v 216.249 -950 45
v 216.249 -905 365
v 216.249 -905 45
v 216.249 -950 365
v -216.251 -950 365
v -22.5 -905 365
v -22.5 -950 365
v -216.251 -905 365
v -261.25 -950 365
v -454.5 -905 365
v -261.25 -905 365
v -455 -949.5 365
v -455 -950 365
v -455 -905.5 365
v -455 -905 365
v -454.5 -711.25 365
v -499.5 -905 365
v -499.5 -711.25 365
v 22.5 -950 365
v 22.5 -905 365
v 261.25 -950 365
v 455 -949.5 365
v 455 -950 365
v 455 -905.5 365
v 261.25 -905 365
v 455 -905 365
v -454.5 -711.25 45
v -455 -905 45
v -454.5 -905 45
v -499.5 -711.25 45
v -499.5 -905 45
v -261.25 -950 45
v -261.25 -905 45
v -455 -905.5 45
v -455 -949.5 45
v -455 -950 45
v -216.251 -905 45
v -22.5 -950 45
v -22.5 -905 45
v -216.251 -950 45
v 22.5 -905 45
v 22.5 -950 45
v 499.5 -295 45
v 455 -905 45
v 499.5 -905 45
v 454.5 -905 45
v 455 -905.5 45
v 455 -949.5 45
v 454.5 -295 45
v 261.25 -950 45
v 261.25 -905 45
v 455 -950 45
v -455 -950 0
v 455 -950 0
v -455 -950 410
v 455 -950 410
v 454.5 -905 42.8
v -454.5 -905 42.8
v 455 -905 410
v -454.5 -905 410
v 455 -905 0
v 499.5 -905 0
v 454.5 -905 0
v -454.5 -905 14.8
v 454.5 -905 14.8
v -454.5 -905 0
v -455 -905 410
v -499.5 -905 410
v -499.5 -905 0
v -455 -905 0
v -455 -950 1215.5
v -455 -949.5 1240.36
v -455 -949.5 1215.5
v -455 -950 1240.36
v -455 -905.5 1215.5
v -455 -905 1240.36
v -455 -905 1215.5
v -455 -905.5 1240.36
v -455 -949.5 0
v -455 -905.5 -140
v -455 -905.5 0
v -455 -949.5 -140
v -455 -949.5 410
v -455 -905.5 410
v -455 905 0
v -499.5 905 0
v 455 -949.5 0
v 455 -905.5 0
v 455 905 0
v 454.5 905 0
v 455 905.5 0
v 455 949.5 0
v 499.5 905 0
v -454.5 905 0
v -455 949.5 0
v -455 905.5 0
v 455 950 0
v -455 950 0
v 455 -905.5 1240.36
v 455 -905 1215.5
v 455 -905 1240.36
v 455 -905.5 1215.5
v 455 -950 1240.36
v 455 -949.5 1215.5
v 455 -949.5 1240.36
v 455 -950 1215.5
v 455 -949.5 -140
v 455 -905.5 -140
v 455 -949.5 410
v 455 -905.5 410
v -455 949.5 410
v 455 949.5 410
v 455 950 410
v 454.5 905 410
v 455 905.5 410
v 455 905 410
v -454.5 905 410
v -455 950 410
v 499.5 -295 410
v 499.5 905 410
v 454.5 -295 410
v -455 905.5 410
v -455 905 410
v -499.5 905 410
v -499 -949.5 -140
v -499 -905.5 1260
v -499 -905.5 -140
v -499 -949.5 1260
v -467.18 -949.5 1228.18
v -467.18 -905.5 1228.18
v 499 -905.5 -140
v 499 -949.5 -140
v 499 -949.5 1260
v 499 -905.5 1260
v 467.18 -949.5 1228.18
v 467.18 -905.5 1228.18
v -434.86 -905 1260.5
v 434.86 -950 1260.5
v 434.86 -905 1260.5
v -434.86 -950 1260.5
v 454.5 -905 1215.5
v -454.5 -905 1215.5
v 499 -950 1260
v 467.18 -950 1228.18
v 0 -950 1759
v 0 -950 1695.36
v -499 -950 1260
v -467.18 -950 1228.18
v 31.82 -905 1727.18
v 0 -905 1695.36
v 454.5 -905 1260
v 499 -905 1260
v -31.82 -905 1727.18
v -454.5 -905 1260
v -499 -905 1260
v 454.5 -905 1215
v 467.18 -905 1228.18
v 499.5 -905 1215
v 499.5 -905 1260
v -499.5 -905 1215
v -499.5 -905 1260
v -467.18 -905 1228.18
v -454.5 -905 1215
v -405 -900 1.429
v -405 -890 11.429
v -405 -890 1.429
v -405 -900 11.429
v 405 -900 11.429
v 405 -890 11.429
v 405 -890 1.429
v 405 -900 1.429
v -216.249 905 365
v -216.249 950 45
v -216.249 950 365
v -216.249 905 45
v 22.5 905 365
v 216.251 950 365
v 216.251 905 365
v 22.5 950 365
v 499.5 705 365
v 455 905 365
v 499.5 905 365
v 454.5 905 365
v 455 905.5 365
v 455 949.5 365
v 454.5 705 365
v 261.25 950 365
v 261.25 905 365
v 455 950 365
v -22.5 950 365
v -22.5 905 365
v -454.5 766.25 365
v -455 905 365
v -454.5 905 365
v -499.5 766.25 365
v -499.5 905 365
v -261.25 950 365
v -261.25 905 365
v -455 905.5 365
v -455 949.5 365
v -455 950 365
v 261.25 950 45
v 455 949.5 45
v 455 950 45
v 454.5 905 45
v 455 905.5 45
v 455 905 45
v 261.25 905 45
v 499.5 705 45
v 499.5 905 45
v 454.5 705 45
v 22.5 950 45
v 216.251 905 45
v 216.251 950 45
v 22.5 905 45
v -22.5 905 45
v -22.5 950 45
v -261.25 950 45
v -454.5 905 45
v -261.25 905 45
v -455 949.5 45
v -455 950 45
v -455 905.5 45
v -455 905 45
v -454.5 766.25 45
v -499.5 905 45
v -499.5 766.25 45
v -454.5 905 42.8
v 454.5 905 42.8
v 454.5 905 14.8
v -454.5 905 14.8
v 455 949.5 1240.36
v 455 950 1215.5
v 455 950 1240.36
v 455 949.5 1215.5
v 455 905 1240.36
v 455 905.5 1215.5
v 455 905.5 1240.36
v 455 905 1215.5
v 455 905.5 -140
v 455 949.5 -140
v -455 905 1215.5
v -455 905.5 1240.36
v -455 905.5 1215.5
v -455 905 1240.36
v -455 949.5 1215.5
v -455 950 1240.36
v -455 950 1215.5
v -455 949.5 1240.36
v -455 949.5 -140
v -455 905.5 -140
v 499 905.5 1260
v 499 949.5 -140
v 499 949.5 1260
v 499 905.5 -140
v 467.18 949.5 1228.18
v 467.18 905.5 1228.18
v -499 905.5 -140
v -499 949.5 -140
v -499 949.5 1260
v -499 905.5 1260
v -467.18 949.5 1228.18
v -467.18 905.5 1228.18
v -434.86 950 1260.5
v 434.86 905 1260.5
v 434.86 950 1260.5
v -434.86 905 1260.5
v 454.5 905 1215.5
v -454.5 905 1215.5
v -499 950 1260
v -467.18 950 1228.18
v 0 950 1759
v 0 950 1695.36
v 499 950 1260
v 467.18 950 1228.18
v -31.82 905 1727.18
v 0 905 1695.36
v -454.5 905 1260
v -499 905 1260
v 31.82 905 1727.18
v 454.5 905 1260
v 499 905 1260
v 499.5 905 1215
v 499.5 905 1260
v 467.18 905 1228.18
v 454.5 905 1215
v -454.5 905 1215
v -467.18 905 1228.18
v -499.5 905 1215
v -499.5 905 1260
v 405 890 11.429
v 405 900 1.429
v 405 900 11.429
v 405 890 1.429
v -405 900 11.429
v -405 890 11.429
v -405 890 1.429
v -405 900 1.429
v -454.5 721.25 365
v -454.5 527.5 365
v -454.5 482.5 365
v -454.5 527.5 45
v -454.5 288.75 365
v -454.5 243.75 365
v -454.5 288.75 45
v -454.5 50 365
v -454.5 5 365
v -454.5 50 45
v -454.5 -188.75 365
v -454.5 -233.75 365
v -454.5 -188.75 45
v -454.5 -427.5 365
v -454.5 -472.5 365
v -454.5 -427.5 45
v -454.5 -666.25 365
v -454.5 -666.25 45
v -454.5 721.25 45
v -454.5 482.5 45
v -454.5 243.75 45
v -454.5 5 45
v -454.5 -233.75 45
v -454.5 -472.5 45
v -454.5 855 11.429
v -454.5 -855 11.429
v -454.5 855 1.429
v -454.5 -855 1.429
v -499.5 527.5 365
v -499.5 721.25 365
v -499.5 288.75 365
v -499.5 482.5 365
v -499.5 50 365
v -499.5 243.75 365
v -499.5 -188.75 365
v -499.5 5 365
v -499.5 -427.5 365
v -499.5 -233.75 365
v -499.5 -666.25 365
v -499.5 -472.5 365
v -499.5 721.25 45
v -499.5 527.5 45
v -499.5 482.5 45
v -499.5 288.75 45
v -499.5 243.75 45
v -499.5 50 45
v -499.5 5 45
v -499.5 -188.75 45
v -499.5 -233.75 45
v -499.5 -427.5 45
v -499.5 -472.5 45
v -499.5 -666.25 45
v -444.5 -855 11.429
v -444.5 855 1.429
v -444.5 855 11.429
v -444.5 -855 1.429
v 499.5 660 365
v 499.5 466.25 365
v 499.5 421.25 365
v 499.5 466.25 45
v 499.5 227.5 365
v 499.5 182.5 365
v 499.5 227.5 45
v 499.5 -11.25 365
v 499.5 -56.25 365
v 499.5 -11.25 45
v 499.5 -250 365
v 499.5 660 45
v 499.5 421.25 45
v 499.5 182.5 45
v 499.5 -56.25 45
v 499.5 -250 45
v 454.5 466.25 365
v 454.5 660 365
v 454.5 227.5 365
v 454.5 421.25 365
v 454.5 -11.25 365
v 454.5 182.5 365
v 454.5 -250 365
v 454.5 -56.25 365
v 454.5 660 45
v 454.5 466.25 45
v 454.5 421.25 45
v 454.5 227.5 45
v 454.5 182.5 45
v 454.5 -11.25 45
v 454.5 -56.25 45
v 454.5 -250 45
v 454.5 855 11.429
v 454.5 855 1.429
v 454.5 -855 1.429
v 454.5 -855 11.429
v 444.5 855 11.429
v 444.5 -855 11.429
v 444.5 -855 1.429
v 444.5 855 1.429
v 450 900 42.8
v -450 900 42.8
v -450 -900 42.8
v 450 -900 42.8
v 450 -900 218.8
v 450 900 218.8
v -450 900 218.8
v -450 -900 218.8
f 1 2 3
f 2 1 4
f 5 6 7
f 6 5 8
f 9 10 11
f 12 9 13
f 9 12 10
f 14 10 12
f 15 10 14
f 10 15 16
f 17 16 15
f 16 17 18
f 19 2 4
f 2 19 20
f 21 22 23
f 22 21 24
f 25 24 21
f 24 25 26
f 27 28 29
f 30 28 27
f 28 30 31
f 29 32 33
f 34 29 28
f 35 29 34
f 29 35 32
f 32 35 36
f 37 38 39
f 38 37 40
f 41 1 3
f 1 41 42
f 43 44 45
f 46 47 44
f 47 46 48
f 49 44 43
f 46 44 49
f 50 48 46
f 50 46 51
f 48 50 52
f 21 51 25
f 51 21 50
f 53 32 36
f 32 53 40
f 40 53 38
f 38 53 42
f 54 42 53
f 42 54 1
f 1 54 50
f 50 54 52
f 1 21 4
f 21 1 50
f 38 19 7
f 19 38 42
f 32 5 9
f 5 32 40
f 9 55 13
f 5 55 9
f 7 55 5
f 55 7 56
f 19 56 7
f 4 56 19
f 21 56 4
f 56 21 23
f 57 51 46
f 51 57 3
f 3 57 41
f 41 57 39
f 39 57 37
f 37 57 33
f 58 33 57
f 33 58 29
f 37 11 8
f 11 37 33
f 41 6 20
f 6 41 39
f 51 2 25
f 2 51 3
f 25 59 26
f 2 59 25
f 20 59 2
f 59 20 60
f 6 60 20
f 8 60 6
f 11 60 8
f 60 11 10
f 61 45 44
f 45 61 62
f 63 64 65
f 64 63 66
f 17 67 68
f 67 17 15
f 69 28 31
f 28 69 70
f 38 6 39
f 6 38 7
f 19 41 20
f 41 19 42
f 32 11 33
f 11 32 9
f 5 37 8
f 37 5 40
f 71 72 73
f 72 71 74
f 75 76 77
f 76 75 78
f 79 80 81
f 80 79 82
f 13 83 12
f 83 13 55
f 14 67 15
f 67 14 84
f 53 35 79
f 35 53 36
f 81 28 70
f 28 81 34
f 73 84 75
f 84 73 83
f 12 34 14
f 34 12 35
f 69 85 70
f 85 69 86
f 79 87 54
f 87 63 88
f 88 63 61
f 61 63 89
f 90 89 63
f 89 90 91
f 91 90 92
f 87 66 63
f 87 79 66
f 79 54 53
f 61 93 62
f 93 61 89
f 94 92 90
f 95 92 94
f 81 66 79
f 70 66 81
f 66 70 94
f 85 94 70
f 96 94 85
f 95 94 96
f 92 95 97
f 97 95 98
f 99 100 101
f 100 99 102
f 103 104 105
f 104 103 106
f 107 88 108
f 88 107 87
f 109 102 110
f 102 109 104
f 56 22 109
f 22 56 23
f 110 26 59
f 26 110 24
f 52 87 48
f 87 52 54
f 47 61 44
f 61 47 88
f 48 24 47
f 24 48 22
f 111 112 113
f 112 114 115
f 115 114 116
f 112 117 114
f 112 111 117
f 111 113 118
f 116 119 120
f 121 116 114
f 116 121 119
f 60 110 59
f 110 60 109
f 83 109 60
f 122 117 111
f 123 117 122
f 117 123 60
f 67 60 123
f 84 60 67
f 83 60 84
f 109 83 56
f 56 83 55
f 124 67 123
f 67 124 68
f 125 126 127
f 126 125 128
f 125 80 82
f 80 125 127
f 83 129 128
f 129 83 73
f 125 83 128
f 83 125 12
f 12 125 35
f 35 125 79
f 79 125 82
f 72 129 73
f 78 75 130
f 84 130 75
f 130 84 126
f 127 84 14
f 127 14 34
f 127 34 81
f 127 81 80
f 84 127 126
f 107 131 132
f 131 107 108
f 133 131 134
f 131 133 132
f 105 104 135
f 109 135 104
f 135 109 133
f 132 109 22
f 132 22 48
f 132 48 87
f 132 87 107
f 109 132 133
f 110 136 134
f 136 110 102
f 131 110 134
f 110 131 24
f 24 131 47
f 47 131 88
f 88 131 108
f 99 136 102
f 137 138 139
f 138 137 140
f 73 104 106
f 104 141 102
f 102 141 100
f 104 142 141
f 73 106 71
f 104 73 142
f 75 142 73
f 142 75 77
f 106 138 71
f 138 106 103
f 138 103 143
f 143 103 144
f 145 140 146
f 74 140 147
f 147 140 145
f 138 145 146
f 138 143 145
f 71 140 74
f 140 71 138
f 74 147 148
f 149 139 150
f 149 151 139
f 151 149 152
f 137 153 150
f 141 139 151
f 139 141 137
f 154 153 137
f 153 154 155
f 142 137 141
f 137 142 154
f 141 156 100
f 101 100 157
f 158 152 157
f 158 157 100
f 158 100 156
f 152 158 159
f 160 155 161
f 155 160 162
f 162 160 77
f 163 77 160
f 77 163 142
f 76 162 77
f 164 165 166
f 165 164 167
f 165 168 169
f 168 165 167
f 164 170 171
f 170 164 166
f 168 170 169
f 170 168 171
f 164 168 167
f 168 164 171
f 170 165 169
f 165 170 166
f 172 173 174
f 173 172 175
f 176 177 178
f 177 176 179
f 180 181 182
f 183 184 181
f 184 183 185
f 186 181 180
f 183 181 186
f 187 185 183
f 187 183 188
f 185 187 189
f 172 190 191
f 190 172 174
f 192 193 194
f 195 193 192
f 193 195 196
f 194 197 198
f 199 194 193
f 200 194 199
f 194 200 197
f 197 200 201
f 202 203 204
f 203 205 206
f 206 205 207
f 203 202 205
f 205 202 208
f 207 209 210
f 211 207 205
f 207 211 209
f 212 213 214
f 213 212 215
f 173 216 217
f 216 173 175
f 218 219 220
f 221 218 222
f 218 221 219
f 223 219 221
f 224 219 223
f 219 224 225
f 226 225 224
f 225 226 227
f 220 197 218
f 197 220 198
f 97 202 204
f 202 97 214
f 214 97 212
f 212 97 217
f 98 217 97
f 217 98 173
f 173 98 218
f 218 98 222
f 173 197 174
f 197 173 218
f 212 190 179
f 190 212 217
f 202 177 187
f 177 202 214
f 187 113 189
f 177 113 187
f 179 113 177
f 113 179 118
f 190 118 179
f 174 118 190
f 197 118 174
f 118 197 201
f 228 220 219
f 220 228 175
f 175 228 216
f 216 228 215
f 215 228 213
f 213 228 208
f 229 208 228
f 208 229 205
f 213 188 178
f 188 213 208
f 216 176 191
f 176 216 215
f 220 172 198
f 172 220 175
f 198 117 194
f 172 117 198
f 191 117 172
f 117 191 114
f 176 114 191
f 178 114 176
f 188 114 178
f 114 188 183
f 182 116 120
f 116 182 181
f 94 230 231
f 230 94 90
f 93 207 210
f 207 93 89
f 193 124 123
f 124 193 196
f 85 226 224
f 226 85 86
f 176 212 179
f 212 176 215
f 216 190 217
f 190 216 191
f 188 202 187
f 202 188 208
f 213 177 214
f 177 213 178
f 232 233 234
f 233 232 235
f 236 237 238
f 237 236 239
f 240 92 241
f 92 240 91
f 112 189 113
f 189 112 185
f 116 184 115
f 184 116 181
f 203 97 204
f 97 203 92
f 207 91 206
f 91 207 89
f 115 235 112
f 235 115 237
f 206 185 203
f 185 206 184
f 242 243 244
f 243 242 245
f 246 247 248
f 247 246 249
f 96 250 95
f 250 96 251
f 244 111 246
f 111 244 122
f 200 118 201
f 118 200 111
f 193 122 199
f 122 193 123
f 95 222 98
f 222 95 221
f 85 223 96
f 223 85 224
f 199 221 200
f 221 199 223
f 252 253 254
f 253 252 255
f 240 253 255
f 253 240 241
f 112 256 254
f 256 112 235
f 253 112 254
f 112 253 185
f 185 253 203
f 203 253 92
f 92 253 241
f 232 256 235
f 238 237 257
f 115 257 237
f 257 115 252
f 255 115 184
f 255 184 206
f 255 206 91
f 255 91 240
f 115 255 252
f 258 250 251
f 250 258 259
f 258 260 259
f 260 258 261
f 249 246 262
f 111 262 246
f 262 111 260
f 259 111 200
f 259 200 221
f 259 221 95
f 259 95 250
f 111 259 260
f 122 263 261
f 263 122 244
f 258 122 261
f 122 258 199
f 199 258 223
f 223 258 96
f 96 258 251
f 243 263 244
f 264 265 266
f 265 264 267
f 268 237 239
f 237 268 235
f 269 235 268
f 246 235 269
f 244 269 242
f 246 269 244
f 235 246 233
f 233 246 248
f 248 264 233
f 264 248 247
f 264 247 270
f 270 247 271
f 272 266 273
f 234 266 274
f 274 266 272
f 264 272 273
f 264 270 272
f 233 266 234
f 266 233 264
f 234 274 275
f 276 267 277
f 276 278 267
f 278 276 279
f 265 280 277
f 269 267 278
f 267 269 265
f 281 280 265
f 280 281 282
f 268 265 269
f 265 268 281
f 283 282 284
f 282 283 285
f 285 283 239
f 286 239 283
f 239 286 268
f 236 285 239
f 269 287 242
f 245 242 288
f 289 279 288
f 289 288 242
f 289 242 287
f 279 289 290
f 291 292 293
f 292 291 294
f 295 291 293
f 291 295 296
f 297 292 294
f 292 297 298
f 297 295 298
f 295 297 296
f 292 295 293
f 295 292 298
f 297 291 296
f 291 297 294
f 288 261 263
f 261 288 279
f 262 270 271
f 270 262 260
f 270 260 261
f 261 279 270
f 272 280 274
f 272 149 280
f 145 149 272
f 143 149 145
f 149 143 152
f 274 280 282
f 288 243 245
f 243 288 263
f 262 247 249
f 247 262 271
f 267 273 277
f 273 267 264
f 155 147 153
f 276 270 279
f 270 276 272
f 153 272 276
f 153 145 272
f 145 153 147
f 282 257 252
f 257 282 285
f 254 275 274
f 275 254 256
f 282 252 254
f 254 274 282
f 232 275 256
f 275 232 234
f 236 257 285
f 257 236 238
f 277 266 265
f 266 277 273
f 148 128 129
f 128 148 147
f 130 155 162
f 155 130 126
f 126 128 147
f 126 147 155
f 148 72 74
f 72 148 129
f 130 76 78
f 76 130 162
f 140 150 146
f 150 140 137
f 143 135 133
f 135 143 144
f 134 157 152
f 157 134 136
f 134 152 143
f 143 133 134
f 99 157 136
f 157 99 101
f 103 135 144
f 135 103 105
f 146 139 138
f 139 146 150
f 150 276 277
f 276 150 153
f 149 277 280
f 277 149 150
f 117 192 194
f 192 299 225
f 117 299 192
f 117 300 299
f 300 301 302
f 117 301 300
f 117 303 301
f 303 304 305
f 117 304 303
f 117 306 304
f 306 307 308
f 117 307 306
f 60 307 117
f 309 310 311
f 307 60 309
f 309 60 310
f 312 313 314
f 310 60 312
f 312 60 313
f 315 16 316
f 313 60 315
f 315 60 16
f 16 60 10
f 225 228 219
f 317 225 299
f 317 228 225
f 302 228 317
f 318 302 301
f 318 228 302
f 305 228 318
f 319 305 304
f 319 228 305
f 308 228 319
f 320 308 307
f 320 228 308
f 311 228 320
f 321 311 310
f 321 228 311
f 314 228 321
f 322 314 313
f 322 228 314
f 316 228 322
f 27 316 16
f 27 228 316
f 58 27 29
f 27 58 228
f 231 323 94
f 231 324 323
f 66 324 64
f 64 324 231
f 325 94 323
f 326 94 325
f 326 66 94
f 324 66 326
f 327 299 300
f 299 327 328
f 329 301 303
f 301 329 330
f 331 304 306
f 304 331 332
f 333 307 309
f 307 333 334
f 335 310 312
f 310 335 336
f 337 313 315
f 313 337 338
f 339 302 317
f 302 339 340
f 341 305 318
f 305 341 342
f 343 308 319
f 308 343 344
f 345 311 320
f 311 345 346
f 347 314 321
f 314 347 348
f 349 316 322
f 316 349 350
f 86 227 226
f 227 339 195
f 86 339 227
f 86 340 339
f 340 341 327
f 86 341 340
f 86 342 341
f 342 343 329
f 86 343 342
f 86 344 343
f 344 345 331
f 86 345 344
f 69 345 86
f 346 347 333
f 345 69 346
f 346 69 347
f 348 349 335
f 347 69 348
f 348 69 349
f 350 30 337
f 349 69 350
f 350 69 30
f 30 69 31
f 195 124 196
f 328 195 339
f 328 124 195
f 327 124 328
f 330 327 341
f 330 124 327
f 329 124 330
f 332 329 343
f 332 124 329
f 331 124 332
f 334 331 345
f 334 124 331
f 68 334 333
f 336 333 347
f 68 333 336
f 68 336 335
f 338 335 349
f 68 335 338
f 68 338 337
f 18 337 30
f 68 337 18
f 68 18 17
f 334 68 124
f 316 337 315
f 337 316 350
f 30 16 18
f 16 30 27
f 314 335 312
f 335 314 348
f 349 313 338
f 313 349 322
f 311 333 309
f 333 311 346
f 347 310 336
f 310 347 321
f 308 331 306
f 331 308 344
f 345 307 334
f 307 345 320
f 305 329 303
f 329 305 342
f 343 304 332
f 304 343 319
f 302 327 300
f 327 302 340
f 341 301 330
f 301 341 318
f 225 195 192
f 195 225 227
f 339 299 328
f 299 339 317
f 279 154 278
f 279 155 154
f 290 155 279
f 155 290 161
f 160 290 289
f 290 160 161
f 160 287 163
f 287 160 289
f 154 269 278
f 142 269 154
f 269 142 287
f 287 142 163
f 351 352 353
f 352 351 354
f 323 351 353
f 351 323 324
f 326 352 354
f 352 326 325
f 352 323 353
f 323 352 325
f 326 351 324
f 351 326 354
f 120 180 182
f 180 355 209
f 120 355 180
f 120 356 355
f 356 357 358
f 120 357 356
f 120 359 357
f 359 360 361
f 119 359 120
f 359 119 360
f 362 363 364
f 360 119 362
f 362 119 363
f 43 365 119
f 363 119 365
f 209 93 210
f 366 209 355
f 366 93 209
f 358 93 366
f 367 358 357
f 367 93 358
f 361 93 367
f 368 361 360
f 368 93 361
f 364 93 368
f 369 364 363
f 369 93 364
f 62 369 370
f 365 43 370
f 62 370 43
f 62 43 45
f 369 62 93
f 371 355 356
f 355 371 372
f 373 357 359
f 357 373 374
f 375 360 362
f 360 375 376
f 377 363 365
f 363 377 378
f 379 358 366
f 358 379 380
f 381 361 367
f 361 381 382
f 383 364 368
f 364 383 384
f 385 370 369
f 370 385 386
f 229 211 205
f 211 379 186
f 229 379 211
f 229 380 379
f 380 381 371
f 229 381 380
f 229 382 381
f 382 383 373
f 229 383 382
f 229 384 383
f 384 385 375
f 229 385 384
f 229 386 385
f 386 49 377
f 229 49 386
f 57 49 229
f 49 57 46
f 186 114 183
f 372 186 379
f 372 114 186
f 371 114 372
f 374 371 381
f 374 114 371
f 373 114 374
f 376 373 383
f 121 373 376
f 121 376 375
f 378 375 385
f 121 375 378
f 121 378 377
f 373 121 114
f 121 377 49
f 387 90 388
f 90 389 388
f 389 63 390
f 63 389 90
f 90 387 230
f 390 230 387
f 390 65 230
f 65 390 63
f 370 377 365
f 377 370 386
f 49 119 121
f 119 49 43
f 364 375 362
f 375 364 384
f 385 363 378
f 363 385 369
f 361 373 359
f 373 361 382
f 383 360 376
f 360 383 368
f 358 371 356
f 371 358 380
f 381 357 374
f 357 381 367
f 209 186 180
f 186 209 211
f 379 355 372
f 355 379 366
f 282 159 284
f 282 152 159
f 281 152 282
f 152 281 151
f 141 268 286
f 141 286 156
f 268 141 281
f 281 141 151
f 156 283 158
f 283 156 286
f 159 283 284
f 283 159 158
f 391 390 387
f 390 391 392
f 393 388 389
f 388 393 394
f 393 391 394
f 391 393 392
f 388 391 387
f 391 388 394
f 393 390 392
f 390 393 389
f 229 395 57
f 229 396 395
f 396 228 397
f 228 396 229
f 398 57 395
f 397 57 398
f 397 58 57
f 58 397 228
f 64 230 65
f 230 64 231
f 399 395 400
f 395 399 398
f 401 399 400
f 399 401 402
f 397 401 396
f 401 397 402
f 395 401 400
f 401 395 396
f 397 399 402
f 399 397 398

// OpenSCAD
// factory parts

// mattress board
// main structure holding mattress board
// all-round fence
// house structure

// REMINDERS
// - subtract 0.001 units to guarantee items form a single object
// - rotate first, translate later
// - buld pieces centered so rotation is more intuitive
// - increase resolution using
//     $fa = 1;
//     $fs = 0.4;


bed_board_width=910;   // 0.91m
bed_board_length=1810; // 1.81m
bed_board_height=28;

mattress_board_width=900;   // 
mattress_board_length=1800; // 
mattress_board_height=190;  // 


main_leg_width=44;
main_leg_height=44;
main_leg_length=1400;


// PART MODULES

// fence common
//https://www.bricomart.es/liston-abeto-cepillado-2400-x-68-x-34-mm.html
//https://www.bricomart.es/liston-abeto-cepillado-2400-x-34-x-34-mm.html
fence_rail_width=45;
fence_rail_height=45;  // !! 
fence_main_width=45;
fence_main_height=45;
fence_bar_width=45;
fence_bar_height=fence_bar_width;
fence_bar_length=320; // magic number


// both W and H are equivalent
board_support = 10 ; 

fence_rail_entrance_length=1200;

height_from_floor= 140;

header_length=bed_board_width;
full_side_width=bed_board_width + 2*main_leg_width ;

// the separation between fence bars is determined by 
// the aesthetics of the head/foot fence. If the head/foot 
// fence looks nicer with 6 voids (5 bars), then that separation
// will govern all the bed fences
fence_bar_separation=(header_length+fence_bar_width)/4 ; // 188

fence_up=fence_bar_length/2+fence_main_height;
board_up=board_support+main_leg_height/5;

margin = fence_main_width/sqrt(2);
roof_length = (full_side_width)/sqrt(2) ;
roof_height = roof_length/sqrt(2) ;

module fence_bar() {
  cube([
        fence_bar_width,  // x
        fence_bar_height, // y
        fence_bar_length  // z
        ], center=true);
}

// 1. head/foot fence
module head_foot_fence() {
  // fence main
  translate([0,0, -1*((fence_bar_length + fence_main_height)/2)])
    cube([
        header_length,   // x
        fence_main_width,  // y 
        fence_main_height  // z
        ],
       center=true);

  // fence rail
  translate([0,0, ((fence_bar_length + fence_rail_height)/2)])
    cube(
       [
        header_length,   // x
        fence_rail_width,  // y 
        fence_rail_height  // z
        ],
       center=true);

  // fence bars
  x=header_length+fence_bar_width - 0.001;
  for (dx=[ -x/2 + fence_bar_separation :fence_bar_separation: x/2]) {
    color("green")
      translate([dx, 0, 0])
        fence_bar();
  }

}


// 2. wall fence
module wall_fence() {
  // fence main
  translate([0,0, -1*((fence_bar_length + fence_main_height)/2)])
   rotate([0,0,90])
    cube([
        bed_board_length,   // x
        fence_main_width,  // y 
        fence_main_height  // z
        ],
       center=true);
  // side top
  top_up = main_leg_length - height_from_floor - fence_up - fence_main_width/2;
  translate([0,0, top_up])
   rotate([0,0,90])
    cube([
        bed_board_length,   // x
        fence_main_width,  // y 
        fence_main_height  // z
        ],
       center=true);


  // fence rail
  translate([0,0, ((fence_bar_length + fence_rail_height)/2)])
   rotate([0,0,90])
    cube(
       [
        bed_board_length,   // x
        fence_rail_width,  // y 
        fence_rail_height  // z
        ],
       center=true);

  // fence bars
  x=bed_board_length+fence_bar_width;
  for (dy=[ -x/2 + fence_bar_separation :fence_bar_separation: x/2]) {
    color("green")
     translate([0, dy, 0])
      fence_bar();
  }
  
  wall_support_up = -( -fence_main_width*1/7 + fence_bar_length/2 + fence_main_height  );  color("cyan")
   translate([fence_main_width/2+board_support/2, 0, wall_support_up])
      cube([
        board_support,   // x
        bed_board_length-100,  // y 
        board_support  // z
        ],
       center=true);
}


// 3. entrance fence
module entrance_fence_rail() {
  // fence rail
  translate([0, 0, ((fence_bar_length + fence_rail_height)/2)])
   rotate([0,0,90])
    cube(
       [
        fence_rail_entrance_length,   // x
        fence_rail_width,  // y 
        fence_rail_height  // z
        ],
       center=true);

  // fence bars
  start = (fence_rail_entrance_length-fence_rail_width)/2;
  end = start;
  for (dy=[ -start :fence_bar_separation: end]) {
    color("green")
     translate([0, dy, 0])
      fence_bar();
  }
}

module entrance_fence() {
//  adjust_up = 
  // fence main
  translate([0,0, -1*((fence_bar_length + fence_main_height)/2)])
   rotate([0,0,90])
    cube([
        bed_board_length,   // x
        fence_main_width,  // y 
        fence_main_height  // z
        ],
       center=true);

  // side top
  top_up = main_leg_length - height_from_floor - fence_up - fence_main_width/2;
  translate([0,0, top_up])
   rotate([0,0,90])
    cube([
        bed_board_length,   // x
        fence_main_width,  // y 
        fence_main_height  // z
        ],
       center=true);

  translate([0,(bed_board_length-fence_rail_entrance_length)/2,0])
    entrance_fence_rail();

  wall_support_up = -( -fence_main_width*1/7 + fence_bar_length/2 + fence_main_height  );
  color("cyan")
   translate([-(fence_main_width+board_support)/2, 0, wall_support_up])
      cube([
        board_support,   // x
        bed_board_length-100,  // y 
        board_support  // z
        ],
       center=true);
}
module bed_board () {
    
  color("red")
    cube([
        bed_board_width,   // x
        bed_board_length,  // y 
        bed_board_height  // z
        ],
       center=true);
    
}

module mattress () {
    
  color("white")
    cube([
        mattress_board_width,   // x
        mattress_board_length,  // y 
        mattress_board_height  // z
        ],
       center=true);
    
}



module header() {
  translate([ 0, 0 , fence_up])
    head_foot_fence();
   
  // side legs
  side_leg_up = main_leg_length/2 - height_from_floor  ;
  side_leg_x= header_length + main_leg_width;
  translate([ side_leg_x/2 , 0 ,  side_leg_up])
    cube([
        main_leg_height,   // x
        main_leg_width,  // y 
        main_leg_length  // z
        ],
       center=true);
  translate([ -side_leg_x/2, 0 ,  side_leg_up])
    cube([
        main_leg_height,   // x
        main_leg_width,  // y 
        main_leg_length  // z
        ],
       center=true);

  top_up = main_leg_length - height_from_floor - main_leg_height/2 ;
  translate([0,0, top_up])
    cube([
        header_length,   // x
        fence_main_width,  // y 
        fence_main_height  // z
        ],
       center=true);

  color("cyan")
   translate([0, -(fence_main_width/2 + board_support), fence_main_width*1/7])
      cube([
        bed_board_width -100,   // x
        board_support,  // y 
        board_support  // z
        ],
       center=true);

}

module footer() {
  rotate([0,0,180])
    header();
}



module roof_side() {
        translate([ 0,0, roof_length/2-fence_main_width/2])
          cube([
              fence_bar_width,   // x
              fence_bar_width,  // y 
              roof_length  // z
              ],
             center=true);
        translate([ 0,roof_length/2-fence_main_width/2, 0])
          rotate([90,0,0])
             cube([
                fence_bar_width,   // x
                fence_bar_width,  // y 
                roof_length  // z
                ],
               center=true);
}

module roof() {
        cube([
            bed_board_length,   // x
            fence_bar_width,  // y 
            fence_bar_height  // z
            ],
           center=true);
        translate([ (bed_board_length+fence_main_width) /2,0, 0])
          roof_side();
        translate([ -(bed_board_length+fence_main_width) /2,0, 0])
          roof_side();
}




module full_bed(){
    
  translate([0, -(bed_board_length+fence_bar_width)/2, 0])
    footer();
  translate([0, (bed_board_length+fence_bar_width)/2, 0])
    header();
  translate([0, 0, main_leg_length-height_from_floor + roof_height-margin])
    rotate([0,225,0])
      rotate([0,0,90])
        roof();
    
  translate([-(header_length+main_leg_width)/2, 0, fence_up])
    wall_fence();
  translate([(header_length+main_leg_width)/2 , 0, fence_up])
    entrance_fence();
    
  b_up = board_up + bed_board_height*1/7 + board_support/2 +1 ;
  translate([0, 0, b_up ])
    bed_board();
    
  translate([0, 0, mattress_board_height/2 + b_up])
    mattress();
    
}


full_bed();
